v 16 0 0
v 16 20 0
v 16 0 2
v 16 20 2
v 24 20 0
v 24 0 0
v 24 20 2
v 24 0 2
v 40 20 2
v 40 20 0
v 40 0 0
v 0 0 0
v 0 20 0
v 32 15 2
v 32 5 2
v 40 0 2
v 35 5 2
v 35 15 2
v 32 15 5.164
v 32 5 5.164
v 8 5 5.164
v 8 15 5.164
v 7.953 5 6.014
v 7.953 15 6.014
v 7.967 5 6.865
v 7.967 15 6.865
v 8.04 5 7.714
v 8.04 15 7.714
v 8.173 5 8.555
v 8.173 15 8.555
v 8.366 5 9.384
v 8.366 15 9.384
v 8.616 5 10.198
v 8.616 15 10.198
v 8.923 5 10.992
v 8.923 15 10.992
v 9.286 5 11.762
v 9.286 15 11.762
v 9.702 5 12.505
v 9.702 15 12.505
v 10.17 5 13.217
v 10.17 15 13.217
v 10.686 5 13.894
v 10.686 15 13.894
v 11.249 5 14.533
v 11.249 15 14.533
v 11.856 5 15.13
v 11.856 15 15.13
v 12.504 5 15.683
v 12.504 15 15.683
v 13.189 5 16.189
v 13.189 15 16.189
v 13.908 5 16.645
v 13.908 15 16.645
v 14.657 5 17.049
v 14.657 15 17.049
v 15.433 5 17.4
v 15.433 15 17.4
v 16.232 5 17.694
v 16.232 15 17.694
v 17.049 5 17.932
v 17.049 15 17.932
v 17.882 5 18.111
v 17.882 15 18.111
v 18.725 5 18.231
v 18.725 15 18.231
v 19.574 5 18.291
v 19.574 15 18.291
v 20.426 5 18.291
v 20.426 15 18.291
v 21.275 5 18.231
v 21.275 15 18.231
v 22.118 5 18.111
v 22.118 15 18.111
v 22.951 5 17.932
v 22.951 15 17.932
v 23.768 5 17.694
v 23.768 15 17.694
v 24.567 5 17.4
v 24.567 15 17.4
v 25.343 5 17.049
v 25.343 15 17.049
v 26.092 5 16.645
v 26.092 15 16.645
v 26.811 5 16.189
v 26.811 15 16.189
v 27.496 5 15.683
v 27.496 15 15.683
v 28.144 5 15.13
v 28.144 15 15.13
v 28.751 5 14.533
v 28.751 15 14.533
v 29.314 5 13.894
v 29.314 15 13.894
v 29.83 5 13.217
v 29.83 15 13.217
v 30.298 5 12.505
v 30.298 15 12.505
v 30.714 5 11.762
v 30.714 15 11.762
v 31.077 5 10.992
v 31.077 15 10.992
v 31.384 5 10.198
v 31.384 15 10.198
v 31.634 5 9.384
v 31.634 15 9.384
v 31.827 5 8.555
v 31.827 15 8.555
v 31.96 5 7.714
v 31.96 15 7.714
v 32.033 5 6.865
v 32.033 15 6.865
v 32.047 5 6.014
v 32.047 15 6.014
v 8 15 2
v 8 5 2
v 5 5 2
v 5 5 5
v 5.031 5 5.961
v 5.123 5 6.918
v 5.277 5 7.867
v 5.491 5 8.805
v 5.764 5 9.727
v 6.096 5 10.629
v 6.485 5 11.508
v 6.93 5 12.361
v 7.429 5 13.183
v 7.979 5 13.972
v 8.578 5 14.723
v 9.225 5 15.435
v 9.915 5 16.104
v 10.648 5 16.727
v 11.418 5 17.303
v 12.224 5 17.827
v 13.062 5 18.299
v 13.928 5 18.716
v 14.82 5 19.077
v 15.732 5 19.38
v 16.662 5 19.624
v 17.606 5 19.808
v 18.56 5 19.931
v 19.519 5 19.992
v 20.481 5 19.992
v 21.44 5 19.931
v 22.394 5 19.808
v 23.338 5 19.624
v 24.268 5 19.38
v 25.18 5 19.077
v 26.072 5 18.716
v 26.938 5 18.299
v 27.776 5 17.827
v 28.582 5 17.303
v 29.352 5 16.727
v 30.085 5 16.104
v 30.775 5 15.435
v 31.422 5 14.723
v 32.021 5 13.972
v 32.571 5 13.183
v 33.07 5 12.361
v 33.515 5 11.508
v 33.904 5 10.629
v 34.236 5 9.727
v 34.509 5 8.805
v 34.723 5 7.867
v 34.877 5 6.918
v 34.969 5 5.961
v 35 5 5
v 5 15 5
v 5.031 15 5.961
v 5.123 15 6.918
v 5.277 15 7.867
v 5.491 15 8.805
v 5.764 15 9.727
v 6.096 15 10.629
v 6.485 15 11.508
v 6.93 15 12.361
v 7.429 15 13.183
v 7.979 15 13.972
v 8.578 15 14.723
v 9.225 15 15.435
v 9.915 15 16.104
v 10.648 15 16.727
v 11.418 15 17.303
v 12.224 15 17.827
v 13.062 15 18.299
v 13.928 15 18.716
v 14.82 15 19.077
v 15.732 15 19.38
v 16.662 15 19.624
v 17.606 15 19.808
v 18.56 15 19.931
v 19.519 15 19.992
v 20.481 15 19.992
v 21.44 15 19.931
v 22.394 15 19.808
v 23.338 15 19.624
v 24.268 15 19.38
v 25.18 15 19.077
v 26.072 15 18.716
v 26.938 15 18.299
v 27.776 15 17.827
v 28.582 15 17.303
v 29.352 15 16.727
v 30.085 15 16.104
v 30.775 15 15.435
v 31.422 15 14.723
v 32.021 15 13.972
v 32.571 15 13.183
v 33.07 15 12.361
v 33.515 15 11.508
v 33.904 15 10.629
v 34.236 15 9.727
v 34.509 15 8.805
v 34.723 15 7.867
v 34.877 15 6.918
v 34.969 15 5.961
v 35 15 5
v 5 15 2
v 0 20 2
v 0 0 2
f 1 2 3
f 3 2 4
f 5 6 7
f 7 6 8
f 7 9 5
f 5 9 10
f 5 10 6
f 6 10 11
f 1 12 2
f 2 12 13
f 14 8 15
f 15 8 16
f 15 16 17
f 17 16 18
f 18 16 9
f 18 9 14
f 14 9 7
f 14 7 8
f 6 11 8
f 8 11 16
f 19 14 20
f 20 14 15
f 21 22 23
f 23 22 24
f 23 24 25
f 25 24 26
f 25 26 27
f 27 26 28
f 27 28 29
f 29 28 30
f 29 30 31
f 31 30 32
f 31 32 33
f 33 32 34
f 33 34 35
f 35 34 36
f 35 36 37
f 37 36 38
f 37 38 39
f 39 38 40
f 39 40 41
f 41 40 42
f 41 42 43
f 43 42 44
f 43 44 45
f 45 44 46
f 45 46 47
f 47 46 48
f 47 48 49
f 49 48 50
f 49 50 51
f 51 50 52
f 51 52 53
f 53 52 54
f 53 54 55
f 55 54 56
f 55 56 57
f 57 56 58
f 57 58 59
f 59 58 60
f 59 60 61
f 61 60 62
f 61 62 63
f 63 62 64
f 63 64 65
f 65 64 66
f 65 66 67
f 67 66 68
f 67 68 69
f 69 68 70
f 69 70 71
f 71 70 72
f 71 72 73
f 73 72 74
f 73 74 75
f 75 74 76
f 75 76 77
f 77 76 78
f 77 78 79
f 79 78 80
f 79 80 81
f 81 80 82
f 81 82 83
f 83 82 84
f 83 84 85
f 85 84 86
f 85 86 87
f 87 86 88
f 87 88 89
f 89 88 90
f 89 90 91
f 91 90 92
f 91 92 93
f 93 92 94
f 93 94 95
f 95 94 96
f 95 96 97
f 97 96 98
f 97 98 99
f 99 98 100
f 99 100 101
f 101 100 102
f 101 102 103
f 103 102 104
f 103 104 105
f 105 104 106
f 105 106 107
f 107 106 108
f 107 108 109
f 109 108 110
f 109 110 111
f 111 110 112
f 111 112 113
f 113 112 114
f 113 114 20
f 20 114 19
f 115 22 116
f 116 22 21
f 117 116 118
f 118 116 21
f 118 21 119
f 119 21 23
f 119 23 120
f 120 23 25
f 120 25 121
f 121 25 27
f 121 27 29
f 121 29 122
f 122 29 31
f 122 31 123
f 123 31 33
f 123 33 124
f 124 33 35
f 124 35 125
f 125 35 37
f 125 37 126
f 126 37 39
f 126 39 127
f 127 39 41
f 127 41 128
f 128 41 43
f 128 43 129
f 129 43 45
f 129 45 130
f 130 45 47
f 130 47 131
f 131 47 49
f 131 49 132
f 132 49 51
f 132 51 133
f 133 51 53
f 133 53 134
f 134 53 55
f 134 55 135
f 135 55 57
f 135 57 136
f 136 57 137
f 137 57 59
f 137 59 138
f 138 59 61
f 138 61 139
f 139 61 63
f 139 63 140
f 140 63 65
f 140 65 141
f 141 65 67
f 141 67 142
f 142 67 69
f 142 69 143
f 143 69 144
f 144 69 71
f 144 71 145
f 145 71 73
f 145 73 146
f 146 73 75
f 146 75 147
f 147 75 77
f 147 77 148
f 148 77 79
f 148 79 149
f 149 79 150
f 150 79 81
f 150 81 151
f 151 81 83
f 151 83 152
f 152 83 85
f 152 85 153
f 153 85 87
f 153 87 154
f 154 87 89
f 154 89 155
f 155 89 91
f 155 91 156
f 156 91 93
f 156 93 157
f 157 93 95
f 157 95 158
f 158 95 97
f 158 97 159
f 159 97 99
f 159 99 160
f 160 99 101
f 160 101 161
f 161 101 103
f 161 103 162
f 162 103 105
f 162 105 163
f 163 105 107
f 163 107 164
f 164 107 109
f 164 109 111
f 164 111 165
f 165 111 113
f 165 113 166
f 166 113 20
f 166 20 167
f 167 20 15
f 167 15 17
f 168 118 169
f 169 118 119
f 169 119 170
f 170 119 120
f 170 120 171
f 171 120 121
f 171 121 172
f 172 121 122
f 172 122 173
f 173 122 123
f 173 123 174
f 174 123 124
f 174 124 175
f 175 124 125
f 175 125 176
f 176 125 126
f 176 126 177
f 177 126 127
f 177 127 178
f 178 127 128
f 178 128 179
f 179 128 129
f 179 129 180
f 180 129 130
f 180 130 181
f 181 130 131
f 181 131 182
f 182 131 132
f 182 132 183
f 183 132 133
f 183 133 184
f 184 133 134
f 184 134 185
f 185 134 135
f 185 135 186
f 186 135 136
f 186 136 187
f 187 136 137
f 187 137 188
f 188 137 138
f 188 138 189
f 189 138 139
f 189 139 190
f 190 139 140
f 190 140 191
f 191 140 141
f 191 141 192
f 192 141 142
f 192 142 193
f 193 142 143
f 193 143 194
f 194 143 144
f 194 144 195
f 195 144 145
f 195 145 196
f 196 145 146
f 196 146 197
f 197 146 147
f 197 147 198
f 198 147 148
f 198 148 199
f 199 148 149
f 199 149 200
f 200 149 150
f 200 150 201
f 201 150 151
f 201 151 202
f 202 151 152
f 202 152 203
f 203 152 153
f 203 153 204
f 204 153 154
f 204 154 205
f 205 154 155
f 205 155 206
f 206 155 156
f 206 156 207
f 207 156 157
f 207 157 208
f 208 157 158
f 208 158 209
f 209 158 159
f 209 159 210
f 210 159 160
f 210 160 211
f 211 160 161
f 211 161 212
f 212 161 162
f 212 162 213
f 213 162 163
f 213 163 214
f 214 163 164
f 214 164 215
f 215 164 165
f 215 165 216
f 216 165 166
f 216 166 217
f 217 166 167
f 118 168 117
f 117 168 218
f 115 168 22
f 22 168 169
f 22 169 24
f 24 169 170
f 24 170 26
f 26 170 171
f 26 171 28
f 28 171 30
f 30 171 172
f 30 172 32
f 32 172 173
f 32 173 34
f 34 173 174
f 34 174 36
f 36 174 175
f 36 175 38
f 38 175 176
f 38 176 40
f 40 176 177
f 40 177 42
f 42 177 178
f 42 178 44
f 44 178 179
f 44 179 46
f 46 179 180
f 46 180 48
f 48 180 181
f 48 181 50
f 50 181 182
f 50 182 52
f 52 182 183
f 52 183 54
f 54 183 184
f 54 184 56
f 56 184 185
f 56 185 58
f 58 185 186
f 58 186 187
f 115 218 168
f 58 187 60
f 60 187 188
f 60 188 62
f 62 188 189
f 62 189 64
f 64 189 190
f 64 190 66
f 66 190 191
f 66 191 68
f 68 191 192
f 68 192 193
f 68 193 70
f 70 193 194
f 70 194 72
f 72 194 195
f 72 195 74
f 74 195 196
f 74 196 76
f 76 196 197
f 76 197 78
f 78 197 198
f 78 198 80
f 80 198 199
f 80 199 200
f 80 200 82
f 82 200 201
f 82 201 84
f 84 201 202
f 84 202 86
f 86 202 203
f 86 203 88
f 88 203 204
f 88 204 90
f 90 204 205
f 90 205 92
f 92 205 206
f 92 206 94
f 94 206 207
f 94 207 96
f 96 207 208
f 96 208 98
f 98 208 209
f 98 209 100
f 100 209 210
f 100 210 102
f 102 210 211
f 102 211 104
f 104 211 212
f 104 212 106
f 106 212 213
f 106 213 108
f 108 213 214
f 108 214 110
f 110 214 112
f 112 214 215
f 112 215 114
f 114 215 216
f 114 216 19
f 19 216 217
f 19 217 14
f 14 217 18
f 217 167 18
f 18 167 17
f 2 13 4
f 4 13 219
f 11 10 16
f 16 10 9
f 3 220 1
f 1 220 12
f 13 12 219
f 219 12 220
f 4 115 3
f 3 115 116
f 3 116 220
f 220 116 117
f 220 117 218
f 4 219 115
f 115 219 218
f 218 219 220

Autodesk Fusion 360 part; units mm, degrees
sketch "Sketch1" plane through (0, 0, 0) normal (0, 0, 1) x (1, 0, 0)
  line L0 (0, 0) -> (40, 0)
  line L1 (40, 0) -> (40, 20)
  line L2 (40, 20) -> (0, 20)
  line L3 (0, 20) -> (0, 0)
  line L4 (5, 15) -> (35, 15)
  line L5 (35, 15) -> (35, 5)
  line L6 (35, 5) -> (5, 5)
  line L7 (5, 5) -> (5, 15)
  line L8 (16, 0) -> (16, 20)
  line L9 (24, 0) -> (24, 20)
  dimension "d1" = 40
  dimension "d2" = 20
  dimension "d3" = 5
  dimension "d4" = 5
  dimension "d5" = 10
  dimension "d6" = 5
  dimension "d16" = 16
  dimension "d17" = 8
extrude "Extrude1" add sketch "Sketch1" along normal blind 2
extrude "Extrude2" add sketch "Sketch1" along normal blind 20 contours L4 L6 L8 L9 | L4 L6 L7 L8 | L4 L5 L6 L9
fillet "Fillet1" radius 15 2 edges at (5, 10, 20) (35, 10, 20)
sketch "Sketch2" plane through (0, 5, 0) normal (0, -1, 0) x (1, 0, 0)
  arc A0 (35, 5) -> (5, 5) centre (20, 5) ccw
  line L0 (5, 5) -> (5, 2)
  line L1 (5, 2) -> (35, 2)
  line L2 (35, 2) -> (35, 5)
  line L3 (8, 5.1637) -> (32, 5.1637)
  arc A1 (32, 5.1637) -> (8, 5.1637) centre (20, 6.2496) ccw
  line L4 (8, 5.1637) -> (8, 2)
  line L5 (32, 5.1637) -> (32, 2)
  line L6 (8, 2) -> (32, 2)
  dimension "d13" = 3
  dimension "d14" = 3
extrude "Extrude3" cut sketch "Sketch2" against normal through all contours L1 L3 L4 L5 L6 | L3 A1
extrude "Extrude4" cut sketch "Sketch1" along normal blind 2 contours L0 L6 L8 L9 | L4 L6 L8 L9 | L2 L4 L8 L9
